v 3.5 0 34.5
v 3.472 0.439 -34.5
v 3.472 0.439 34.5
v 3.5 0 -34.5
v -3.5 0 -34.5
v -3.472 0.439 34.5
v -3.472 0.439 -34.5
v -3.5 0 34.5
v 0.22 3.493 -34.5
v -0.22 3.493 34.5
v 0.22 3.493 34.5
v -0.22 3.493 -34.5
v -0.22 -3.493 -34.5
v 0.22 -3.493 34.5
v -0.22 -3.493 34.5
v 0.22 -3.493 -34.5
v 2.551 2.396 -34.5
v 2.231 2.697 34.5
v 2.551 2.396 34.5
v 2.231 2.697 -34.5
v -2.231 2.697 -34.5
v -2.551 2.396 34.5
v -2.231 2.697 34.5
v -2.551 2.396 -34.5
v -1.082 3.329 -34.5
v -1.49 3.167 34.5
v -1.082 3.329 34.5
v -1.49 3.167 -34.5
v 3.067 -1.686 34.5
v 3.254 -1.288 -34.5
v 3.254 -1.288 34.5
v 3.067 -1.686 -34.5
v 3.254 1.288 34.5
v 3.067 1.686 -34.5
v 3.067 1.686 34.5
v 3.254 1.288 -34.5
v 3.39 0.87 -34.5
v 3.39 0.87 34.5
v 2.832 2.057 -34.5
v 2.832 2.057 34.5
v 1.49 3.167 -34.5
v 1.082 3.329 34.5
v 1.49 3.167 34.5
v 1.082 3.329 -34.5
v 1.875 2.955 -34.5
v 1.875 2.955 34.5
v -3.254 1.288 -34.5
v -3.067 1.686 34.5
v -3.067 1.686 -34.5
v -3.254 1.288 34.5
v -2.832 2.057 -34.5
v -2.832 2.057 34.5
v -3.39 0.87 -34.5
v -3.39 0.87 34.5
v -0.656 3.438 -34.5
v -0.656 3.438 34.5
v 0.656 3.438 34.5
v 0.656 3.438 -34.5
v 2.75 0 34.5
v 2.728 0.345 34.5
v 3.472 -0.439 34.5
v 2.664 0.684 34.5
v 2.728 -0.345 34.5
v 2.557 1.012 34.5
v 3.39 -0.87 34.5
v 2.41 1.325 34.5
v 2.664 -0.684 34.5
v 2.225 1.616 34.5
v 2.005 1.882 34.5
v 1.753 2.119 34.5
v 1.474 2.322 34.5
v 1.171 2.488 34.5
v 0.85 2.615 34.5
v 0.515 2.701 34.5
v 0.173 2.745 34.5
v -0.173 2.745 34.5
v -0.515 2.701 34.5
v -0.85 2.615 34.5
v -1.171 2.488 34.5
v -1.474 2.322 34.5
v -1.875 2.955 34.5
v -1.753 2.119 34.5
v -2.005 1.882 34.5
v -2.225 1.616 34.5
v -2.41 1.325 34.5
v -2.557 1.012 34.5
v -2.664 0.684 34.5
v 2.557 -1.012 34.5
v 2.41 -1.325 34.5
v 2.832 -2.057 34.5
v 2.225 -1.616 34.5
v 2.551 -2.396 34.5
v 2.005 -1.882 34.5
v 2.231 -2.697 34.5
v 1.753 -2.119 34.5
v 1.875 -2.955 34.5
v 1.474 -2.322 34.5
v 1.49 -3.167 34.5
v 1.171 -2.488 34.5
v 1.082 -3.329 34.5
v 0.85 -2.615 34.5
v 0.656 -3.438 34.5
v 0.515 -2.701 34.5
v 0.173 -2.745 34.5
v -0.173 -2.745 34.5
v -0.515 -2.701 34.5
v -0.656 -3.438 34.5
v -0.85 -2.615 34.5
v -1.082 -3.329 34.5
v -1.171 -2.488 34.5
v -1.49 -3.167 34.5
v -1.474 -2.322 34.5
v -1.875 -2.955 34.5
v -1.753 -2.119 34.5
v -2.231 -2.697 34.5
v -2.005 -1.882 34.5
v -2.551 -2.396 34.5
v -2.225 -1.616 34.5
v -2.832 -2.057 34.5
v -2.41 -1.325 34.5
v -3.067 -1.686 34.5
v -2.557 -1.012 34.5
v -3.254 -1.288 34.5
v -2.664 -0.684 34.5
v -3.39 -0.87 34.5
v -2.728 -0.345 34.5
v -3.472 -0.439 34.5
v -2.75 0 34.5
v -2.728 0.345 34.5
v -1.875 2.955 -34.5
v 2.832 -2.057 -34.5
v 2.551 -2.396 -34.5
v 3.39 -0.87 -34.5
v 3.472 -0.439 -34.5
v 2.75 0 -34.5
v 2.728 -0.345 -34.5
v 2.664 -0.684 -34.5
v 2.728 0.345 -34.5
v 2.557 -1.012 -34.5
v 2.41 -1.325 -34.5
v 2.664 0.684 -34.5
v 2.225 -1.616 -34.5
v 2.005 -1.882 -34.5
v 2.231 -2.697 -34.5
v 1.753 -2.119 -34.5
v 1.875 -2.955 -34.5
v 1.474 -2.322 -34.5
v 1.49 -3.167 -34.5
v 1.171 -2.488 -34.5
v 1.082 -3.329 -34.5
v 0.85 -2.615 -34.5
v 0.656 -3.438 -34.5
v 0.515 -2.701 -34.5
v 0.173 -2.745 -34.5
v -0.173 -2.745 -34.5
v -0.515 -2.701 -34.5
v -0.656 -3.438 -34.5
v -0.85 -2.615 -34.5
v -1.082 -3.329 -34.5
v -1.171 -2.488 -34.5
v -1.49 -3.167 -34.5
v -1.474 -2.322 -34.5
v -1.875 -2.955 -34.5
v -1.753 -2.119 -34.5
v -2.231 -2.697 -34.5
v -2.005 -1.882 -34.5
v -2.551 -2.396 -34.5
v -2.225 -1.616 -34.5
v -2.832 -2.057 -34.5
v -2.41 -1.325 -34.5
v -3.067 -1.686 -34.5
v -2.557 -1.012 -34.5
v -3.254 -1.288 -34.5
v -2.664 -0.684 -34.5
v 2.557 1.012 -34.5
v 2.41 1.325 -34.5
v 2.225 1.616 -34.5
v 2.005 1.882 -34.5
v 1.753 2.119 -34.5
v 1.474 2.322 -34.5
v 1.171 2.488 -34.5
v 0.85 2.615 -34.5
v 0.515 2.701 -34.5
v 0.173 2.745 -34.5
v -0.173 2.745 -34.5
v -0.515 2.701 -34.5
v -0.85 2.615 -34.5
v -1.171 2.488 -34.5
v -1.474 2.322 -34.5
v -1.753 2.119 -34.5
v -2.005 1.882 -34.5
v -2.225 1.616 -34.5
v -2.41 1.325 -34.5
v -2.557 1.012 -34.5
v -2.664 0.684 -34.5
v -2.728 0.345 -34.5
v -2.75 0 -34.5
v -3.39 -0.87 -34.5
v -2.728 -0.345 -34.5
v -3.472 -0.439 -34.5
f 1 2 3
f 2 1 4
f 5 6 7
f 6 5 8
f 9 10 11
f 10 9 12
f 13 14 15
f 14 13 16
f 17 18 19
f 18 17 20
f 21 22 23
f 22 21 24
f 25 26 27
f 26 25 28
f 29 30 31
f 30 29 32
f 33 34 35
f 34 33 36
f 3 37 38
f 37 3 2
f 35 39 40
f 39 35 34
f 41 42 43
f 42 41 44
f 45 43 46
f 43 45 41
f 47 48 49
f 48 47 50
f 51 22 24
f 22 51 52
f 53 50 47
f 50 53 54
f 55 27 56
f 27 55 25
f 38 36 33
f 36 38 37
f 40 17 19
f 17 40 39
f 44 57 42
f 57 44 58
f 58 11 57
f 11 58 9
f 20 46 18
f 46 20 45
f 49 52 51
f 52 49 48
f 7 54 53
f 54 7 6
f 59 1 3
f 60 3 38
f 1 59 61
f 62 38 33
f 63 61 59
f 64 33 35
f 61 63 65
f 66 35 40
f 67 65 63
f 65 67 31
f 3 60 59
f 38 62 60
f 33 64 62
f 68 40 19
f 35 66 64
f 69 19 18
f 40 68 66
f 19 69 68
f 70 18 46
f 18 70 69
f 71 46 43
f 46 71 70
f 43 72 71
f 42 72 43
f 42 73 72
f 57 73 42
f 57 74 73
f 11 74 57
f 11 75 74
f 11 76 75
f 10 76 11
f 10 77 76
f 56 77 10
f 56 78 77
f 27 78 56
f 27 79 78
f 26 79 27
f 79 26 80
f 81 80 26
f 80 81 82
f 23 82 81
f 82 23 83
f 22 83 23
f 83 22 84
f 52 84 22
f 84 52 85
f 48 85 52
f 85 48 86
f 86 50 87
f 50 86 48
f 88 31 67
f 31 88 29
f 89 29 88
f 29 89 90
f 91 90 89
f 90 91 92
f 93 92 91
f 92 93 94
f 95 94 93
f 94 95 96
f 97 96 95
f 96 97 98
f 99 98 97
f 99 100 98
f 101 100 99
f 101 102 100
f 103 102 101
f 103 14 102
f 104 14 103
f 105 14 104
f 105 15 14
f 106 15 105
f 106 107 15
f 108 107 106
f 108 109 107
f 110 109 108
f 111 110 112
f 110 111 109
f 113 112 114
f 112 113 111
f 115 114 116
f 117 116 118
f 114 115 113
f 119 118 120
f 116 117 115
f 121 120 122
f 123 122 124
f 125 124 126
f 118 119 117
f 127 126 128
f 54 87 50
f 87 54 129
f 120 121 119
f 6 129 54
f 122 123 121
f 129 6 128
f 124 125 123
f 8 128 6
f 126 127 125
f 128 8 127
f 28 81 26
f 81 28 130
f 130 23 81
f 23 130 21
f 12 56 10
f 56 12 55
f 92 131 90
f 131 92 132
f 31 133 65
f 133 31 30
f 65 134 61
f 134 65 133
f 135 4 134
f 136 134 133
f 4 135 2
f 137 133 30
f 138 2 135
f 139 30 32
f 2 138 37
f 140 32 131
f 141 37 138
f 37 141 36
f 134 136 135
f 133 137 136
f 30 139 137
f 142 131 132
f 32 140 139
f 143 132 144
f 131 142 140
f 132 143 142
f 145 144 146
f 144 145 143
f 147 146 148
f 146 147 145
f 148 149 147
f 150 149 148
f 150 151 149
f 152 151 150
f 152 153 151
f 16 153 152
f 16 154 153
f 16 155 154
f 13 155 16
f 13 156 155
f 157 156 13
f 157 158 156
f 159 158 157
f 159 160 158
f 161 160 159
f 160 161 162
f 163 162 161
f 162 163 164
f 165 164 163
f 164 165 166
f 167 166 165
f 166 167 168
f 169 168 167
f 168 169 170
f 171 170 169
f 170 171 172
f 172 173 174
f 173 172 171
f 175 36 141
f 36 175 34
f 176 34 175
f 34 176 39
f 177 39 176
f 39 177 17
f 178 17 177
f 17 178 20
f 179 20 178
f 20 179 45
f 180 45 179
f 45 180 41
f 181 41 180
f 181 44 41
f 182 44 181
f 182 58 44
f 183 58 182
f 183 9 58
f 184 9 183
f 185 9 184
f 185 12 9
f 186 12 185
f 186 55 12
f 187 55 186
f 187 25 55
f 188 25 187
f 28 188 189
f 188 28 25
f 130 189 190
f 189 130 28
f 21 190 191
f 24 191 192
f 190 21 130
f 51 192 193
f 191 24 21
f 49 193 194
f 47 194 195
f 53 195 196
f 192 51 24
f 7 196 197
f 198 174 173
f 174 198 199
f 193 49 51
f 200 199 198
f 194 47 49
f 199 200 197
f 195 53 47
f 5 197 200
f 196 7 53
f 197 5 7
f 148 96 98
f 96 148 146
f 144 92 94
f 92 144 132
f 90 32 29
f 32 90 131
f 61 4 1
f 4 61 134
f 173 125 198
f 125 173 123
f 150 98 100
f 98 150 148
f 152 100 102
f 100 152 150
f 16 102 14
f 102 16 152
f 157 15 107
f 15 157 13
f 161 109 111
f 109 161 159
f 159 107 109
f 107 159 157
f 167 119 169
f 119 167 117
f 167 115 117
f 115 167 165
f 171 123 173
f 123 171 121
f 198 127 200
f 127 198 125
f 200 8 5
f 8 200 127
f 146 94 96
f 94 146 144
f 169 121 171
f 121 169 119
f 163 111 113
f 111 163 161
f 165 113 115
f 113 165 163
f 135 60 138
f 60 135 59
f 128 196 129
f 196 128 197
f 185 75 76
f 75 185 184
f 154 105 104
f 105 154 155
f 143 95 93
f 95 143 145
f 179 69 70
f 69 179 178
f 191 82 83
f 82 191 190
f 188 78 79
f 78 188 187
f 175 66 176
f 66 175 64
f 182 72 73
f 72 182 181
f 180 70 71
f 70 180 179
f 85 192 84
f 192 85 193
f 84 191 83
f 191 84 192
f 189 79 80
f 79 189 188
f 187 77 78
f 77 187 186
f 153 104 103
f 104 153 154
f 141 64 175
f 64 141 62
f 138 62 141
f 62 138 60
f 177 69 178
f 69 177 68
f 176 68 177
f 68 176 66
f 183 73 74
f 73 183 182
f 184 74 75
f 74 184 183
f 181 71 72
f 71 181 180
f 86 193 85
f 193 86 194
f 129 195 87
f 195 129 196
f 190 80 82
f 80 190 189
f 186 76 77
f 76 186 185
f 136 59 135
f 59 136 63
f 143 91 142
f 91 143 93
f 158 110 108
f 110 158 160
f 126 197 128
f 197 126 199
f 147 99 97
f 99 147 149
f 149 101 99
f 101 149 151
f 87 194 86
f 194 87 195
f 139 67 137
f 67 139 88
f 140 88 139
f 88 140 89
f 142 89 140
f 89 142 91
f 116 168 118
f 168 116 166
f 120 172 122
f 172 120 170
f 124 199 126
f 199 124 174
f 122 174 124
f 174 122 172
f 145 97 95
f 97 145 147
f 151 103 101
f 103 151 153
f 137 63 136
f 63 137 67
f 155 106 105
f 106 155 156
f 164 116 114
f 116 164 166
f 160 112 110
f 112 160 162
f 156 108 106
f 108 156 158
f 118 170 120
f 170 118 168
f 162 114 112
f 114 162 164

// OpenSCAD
$fn = 50;


difference() {
	union() {
		translate(v = [0, 0, -34.5000000000]) {
			cylinder(h = 69, r = 3.5000000000);
		}
	}
	union() {
		translate(v = [0, 0, -100.0000000000]) {
			cylinder(h = 200, r = 2.7500000000);
		}
	}
}
